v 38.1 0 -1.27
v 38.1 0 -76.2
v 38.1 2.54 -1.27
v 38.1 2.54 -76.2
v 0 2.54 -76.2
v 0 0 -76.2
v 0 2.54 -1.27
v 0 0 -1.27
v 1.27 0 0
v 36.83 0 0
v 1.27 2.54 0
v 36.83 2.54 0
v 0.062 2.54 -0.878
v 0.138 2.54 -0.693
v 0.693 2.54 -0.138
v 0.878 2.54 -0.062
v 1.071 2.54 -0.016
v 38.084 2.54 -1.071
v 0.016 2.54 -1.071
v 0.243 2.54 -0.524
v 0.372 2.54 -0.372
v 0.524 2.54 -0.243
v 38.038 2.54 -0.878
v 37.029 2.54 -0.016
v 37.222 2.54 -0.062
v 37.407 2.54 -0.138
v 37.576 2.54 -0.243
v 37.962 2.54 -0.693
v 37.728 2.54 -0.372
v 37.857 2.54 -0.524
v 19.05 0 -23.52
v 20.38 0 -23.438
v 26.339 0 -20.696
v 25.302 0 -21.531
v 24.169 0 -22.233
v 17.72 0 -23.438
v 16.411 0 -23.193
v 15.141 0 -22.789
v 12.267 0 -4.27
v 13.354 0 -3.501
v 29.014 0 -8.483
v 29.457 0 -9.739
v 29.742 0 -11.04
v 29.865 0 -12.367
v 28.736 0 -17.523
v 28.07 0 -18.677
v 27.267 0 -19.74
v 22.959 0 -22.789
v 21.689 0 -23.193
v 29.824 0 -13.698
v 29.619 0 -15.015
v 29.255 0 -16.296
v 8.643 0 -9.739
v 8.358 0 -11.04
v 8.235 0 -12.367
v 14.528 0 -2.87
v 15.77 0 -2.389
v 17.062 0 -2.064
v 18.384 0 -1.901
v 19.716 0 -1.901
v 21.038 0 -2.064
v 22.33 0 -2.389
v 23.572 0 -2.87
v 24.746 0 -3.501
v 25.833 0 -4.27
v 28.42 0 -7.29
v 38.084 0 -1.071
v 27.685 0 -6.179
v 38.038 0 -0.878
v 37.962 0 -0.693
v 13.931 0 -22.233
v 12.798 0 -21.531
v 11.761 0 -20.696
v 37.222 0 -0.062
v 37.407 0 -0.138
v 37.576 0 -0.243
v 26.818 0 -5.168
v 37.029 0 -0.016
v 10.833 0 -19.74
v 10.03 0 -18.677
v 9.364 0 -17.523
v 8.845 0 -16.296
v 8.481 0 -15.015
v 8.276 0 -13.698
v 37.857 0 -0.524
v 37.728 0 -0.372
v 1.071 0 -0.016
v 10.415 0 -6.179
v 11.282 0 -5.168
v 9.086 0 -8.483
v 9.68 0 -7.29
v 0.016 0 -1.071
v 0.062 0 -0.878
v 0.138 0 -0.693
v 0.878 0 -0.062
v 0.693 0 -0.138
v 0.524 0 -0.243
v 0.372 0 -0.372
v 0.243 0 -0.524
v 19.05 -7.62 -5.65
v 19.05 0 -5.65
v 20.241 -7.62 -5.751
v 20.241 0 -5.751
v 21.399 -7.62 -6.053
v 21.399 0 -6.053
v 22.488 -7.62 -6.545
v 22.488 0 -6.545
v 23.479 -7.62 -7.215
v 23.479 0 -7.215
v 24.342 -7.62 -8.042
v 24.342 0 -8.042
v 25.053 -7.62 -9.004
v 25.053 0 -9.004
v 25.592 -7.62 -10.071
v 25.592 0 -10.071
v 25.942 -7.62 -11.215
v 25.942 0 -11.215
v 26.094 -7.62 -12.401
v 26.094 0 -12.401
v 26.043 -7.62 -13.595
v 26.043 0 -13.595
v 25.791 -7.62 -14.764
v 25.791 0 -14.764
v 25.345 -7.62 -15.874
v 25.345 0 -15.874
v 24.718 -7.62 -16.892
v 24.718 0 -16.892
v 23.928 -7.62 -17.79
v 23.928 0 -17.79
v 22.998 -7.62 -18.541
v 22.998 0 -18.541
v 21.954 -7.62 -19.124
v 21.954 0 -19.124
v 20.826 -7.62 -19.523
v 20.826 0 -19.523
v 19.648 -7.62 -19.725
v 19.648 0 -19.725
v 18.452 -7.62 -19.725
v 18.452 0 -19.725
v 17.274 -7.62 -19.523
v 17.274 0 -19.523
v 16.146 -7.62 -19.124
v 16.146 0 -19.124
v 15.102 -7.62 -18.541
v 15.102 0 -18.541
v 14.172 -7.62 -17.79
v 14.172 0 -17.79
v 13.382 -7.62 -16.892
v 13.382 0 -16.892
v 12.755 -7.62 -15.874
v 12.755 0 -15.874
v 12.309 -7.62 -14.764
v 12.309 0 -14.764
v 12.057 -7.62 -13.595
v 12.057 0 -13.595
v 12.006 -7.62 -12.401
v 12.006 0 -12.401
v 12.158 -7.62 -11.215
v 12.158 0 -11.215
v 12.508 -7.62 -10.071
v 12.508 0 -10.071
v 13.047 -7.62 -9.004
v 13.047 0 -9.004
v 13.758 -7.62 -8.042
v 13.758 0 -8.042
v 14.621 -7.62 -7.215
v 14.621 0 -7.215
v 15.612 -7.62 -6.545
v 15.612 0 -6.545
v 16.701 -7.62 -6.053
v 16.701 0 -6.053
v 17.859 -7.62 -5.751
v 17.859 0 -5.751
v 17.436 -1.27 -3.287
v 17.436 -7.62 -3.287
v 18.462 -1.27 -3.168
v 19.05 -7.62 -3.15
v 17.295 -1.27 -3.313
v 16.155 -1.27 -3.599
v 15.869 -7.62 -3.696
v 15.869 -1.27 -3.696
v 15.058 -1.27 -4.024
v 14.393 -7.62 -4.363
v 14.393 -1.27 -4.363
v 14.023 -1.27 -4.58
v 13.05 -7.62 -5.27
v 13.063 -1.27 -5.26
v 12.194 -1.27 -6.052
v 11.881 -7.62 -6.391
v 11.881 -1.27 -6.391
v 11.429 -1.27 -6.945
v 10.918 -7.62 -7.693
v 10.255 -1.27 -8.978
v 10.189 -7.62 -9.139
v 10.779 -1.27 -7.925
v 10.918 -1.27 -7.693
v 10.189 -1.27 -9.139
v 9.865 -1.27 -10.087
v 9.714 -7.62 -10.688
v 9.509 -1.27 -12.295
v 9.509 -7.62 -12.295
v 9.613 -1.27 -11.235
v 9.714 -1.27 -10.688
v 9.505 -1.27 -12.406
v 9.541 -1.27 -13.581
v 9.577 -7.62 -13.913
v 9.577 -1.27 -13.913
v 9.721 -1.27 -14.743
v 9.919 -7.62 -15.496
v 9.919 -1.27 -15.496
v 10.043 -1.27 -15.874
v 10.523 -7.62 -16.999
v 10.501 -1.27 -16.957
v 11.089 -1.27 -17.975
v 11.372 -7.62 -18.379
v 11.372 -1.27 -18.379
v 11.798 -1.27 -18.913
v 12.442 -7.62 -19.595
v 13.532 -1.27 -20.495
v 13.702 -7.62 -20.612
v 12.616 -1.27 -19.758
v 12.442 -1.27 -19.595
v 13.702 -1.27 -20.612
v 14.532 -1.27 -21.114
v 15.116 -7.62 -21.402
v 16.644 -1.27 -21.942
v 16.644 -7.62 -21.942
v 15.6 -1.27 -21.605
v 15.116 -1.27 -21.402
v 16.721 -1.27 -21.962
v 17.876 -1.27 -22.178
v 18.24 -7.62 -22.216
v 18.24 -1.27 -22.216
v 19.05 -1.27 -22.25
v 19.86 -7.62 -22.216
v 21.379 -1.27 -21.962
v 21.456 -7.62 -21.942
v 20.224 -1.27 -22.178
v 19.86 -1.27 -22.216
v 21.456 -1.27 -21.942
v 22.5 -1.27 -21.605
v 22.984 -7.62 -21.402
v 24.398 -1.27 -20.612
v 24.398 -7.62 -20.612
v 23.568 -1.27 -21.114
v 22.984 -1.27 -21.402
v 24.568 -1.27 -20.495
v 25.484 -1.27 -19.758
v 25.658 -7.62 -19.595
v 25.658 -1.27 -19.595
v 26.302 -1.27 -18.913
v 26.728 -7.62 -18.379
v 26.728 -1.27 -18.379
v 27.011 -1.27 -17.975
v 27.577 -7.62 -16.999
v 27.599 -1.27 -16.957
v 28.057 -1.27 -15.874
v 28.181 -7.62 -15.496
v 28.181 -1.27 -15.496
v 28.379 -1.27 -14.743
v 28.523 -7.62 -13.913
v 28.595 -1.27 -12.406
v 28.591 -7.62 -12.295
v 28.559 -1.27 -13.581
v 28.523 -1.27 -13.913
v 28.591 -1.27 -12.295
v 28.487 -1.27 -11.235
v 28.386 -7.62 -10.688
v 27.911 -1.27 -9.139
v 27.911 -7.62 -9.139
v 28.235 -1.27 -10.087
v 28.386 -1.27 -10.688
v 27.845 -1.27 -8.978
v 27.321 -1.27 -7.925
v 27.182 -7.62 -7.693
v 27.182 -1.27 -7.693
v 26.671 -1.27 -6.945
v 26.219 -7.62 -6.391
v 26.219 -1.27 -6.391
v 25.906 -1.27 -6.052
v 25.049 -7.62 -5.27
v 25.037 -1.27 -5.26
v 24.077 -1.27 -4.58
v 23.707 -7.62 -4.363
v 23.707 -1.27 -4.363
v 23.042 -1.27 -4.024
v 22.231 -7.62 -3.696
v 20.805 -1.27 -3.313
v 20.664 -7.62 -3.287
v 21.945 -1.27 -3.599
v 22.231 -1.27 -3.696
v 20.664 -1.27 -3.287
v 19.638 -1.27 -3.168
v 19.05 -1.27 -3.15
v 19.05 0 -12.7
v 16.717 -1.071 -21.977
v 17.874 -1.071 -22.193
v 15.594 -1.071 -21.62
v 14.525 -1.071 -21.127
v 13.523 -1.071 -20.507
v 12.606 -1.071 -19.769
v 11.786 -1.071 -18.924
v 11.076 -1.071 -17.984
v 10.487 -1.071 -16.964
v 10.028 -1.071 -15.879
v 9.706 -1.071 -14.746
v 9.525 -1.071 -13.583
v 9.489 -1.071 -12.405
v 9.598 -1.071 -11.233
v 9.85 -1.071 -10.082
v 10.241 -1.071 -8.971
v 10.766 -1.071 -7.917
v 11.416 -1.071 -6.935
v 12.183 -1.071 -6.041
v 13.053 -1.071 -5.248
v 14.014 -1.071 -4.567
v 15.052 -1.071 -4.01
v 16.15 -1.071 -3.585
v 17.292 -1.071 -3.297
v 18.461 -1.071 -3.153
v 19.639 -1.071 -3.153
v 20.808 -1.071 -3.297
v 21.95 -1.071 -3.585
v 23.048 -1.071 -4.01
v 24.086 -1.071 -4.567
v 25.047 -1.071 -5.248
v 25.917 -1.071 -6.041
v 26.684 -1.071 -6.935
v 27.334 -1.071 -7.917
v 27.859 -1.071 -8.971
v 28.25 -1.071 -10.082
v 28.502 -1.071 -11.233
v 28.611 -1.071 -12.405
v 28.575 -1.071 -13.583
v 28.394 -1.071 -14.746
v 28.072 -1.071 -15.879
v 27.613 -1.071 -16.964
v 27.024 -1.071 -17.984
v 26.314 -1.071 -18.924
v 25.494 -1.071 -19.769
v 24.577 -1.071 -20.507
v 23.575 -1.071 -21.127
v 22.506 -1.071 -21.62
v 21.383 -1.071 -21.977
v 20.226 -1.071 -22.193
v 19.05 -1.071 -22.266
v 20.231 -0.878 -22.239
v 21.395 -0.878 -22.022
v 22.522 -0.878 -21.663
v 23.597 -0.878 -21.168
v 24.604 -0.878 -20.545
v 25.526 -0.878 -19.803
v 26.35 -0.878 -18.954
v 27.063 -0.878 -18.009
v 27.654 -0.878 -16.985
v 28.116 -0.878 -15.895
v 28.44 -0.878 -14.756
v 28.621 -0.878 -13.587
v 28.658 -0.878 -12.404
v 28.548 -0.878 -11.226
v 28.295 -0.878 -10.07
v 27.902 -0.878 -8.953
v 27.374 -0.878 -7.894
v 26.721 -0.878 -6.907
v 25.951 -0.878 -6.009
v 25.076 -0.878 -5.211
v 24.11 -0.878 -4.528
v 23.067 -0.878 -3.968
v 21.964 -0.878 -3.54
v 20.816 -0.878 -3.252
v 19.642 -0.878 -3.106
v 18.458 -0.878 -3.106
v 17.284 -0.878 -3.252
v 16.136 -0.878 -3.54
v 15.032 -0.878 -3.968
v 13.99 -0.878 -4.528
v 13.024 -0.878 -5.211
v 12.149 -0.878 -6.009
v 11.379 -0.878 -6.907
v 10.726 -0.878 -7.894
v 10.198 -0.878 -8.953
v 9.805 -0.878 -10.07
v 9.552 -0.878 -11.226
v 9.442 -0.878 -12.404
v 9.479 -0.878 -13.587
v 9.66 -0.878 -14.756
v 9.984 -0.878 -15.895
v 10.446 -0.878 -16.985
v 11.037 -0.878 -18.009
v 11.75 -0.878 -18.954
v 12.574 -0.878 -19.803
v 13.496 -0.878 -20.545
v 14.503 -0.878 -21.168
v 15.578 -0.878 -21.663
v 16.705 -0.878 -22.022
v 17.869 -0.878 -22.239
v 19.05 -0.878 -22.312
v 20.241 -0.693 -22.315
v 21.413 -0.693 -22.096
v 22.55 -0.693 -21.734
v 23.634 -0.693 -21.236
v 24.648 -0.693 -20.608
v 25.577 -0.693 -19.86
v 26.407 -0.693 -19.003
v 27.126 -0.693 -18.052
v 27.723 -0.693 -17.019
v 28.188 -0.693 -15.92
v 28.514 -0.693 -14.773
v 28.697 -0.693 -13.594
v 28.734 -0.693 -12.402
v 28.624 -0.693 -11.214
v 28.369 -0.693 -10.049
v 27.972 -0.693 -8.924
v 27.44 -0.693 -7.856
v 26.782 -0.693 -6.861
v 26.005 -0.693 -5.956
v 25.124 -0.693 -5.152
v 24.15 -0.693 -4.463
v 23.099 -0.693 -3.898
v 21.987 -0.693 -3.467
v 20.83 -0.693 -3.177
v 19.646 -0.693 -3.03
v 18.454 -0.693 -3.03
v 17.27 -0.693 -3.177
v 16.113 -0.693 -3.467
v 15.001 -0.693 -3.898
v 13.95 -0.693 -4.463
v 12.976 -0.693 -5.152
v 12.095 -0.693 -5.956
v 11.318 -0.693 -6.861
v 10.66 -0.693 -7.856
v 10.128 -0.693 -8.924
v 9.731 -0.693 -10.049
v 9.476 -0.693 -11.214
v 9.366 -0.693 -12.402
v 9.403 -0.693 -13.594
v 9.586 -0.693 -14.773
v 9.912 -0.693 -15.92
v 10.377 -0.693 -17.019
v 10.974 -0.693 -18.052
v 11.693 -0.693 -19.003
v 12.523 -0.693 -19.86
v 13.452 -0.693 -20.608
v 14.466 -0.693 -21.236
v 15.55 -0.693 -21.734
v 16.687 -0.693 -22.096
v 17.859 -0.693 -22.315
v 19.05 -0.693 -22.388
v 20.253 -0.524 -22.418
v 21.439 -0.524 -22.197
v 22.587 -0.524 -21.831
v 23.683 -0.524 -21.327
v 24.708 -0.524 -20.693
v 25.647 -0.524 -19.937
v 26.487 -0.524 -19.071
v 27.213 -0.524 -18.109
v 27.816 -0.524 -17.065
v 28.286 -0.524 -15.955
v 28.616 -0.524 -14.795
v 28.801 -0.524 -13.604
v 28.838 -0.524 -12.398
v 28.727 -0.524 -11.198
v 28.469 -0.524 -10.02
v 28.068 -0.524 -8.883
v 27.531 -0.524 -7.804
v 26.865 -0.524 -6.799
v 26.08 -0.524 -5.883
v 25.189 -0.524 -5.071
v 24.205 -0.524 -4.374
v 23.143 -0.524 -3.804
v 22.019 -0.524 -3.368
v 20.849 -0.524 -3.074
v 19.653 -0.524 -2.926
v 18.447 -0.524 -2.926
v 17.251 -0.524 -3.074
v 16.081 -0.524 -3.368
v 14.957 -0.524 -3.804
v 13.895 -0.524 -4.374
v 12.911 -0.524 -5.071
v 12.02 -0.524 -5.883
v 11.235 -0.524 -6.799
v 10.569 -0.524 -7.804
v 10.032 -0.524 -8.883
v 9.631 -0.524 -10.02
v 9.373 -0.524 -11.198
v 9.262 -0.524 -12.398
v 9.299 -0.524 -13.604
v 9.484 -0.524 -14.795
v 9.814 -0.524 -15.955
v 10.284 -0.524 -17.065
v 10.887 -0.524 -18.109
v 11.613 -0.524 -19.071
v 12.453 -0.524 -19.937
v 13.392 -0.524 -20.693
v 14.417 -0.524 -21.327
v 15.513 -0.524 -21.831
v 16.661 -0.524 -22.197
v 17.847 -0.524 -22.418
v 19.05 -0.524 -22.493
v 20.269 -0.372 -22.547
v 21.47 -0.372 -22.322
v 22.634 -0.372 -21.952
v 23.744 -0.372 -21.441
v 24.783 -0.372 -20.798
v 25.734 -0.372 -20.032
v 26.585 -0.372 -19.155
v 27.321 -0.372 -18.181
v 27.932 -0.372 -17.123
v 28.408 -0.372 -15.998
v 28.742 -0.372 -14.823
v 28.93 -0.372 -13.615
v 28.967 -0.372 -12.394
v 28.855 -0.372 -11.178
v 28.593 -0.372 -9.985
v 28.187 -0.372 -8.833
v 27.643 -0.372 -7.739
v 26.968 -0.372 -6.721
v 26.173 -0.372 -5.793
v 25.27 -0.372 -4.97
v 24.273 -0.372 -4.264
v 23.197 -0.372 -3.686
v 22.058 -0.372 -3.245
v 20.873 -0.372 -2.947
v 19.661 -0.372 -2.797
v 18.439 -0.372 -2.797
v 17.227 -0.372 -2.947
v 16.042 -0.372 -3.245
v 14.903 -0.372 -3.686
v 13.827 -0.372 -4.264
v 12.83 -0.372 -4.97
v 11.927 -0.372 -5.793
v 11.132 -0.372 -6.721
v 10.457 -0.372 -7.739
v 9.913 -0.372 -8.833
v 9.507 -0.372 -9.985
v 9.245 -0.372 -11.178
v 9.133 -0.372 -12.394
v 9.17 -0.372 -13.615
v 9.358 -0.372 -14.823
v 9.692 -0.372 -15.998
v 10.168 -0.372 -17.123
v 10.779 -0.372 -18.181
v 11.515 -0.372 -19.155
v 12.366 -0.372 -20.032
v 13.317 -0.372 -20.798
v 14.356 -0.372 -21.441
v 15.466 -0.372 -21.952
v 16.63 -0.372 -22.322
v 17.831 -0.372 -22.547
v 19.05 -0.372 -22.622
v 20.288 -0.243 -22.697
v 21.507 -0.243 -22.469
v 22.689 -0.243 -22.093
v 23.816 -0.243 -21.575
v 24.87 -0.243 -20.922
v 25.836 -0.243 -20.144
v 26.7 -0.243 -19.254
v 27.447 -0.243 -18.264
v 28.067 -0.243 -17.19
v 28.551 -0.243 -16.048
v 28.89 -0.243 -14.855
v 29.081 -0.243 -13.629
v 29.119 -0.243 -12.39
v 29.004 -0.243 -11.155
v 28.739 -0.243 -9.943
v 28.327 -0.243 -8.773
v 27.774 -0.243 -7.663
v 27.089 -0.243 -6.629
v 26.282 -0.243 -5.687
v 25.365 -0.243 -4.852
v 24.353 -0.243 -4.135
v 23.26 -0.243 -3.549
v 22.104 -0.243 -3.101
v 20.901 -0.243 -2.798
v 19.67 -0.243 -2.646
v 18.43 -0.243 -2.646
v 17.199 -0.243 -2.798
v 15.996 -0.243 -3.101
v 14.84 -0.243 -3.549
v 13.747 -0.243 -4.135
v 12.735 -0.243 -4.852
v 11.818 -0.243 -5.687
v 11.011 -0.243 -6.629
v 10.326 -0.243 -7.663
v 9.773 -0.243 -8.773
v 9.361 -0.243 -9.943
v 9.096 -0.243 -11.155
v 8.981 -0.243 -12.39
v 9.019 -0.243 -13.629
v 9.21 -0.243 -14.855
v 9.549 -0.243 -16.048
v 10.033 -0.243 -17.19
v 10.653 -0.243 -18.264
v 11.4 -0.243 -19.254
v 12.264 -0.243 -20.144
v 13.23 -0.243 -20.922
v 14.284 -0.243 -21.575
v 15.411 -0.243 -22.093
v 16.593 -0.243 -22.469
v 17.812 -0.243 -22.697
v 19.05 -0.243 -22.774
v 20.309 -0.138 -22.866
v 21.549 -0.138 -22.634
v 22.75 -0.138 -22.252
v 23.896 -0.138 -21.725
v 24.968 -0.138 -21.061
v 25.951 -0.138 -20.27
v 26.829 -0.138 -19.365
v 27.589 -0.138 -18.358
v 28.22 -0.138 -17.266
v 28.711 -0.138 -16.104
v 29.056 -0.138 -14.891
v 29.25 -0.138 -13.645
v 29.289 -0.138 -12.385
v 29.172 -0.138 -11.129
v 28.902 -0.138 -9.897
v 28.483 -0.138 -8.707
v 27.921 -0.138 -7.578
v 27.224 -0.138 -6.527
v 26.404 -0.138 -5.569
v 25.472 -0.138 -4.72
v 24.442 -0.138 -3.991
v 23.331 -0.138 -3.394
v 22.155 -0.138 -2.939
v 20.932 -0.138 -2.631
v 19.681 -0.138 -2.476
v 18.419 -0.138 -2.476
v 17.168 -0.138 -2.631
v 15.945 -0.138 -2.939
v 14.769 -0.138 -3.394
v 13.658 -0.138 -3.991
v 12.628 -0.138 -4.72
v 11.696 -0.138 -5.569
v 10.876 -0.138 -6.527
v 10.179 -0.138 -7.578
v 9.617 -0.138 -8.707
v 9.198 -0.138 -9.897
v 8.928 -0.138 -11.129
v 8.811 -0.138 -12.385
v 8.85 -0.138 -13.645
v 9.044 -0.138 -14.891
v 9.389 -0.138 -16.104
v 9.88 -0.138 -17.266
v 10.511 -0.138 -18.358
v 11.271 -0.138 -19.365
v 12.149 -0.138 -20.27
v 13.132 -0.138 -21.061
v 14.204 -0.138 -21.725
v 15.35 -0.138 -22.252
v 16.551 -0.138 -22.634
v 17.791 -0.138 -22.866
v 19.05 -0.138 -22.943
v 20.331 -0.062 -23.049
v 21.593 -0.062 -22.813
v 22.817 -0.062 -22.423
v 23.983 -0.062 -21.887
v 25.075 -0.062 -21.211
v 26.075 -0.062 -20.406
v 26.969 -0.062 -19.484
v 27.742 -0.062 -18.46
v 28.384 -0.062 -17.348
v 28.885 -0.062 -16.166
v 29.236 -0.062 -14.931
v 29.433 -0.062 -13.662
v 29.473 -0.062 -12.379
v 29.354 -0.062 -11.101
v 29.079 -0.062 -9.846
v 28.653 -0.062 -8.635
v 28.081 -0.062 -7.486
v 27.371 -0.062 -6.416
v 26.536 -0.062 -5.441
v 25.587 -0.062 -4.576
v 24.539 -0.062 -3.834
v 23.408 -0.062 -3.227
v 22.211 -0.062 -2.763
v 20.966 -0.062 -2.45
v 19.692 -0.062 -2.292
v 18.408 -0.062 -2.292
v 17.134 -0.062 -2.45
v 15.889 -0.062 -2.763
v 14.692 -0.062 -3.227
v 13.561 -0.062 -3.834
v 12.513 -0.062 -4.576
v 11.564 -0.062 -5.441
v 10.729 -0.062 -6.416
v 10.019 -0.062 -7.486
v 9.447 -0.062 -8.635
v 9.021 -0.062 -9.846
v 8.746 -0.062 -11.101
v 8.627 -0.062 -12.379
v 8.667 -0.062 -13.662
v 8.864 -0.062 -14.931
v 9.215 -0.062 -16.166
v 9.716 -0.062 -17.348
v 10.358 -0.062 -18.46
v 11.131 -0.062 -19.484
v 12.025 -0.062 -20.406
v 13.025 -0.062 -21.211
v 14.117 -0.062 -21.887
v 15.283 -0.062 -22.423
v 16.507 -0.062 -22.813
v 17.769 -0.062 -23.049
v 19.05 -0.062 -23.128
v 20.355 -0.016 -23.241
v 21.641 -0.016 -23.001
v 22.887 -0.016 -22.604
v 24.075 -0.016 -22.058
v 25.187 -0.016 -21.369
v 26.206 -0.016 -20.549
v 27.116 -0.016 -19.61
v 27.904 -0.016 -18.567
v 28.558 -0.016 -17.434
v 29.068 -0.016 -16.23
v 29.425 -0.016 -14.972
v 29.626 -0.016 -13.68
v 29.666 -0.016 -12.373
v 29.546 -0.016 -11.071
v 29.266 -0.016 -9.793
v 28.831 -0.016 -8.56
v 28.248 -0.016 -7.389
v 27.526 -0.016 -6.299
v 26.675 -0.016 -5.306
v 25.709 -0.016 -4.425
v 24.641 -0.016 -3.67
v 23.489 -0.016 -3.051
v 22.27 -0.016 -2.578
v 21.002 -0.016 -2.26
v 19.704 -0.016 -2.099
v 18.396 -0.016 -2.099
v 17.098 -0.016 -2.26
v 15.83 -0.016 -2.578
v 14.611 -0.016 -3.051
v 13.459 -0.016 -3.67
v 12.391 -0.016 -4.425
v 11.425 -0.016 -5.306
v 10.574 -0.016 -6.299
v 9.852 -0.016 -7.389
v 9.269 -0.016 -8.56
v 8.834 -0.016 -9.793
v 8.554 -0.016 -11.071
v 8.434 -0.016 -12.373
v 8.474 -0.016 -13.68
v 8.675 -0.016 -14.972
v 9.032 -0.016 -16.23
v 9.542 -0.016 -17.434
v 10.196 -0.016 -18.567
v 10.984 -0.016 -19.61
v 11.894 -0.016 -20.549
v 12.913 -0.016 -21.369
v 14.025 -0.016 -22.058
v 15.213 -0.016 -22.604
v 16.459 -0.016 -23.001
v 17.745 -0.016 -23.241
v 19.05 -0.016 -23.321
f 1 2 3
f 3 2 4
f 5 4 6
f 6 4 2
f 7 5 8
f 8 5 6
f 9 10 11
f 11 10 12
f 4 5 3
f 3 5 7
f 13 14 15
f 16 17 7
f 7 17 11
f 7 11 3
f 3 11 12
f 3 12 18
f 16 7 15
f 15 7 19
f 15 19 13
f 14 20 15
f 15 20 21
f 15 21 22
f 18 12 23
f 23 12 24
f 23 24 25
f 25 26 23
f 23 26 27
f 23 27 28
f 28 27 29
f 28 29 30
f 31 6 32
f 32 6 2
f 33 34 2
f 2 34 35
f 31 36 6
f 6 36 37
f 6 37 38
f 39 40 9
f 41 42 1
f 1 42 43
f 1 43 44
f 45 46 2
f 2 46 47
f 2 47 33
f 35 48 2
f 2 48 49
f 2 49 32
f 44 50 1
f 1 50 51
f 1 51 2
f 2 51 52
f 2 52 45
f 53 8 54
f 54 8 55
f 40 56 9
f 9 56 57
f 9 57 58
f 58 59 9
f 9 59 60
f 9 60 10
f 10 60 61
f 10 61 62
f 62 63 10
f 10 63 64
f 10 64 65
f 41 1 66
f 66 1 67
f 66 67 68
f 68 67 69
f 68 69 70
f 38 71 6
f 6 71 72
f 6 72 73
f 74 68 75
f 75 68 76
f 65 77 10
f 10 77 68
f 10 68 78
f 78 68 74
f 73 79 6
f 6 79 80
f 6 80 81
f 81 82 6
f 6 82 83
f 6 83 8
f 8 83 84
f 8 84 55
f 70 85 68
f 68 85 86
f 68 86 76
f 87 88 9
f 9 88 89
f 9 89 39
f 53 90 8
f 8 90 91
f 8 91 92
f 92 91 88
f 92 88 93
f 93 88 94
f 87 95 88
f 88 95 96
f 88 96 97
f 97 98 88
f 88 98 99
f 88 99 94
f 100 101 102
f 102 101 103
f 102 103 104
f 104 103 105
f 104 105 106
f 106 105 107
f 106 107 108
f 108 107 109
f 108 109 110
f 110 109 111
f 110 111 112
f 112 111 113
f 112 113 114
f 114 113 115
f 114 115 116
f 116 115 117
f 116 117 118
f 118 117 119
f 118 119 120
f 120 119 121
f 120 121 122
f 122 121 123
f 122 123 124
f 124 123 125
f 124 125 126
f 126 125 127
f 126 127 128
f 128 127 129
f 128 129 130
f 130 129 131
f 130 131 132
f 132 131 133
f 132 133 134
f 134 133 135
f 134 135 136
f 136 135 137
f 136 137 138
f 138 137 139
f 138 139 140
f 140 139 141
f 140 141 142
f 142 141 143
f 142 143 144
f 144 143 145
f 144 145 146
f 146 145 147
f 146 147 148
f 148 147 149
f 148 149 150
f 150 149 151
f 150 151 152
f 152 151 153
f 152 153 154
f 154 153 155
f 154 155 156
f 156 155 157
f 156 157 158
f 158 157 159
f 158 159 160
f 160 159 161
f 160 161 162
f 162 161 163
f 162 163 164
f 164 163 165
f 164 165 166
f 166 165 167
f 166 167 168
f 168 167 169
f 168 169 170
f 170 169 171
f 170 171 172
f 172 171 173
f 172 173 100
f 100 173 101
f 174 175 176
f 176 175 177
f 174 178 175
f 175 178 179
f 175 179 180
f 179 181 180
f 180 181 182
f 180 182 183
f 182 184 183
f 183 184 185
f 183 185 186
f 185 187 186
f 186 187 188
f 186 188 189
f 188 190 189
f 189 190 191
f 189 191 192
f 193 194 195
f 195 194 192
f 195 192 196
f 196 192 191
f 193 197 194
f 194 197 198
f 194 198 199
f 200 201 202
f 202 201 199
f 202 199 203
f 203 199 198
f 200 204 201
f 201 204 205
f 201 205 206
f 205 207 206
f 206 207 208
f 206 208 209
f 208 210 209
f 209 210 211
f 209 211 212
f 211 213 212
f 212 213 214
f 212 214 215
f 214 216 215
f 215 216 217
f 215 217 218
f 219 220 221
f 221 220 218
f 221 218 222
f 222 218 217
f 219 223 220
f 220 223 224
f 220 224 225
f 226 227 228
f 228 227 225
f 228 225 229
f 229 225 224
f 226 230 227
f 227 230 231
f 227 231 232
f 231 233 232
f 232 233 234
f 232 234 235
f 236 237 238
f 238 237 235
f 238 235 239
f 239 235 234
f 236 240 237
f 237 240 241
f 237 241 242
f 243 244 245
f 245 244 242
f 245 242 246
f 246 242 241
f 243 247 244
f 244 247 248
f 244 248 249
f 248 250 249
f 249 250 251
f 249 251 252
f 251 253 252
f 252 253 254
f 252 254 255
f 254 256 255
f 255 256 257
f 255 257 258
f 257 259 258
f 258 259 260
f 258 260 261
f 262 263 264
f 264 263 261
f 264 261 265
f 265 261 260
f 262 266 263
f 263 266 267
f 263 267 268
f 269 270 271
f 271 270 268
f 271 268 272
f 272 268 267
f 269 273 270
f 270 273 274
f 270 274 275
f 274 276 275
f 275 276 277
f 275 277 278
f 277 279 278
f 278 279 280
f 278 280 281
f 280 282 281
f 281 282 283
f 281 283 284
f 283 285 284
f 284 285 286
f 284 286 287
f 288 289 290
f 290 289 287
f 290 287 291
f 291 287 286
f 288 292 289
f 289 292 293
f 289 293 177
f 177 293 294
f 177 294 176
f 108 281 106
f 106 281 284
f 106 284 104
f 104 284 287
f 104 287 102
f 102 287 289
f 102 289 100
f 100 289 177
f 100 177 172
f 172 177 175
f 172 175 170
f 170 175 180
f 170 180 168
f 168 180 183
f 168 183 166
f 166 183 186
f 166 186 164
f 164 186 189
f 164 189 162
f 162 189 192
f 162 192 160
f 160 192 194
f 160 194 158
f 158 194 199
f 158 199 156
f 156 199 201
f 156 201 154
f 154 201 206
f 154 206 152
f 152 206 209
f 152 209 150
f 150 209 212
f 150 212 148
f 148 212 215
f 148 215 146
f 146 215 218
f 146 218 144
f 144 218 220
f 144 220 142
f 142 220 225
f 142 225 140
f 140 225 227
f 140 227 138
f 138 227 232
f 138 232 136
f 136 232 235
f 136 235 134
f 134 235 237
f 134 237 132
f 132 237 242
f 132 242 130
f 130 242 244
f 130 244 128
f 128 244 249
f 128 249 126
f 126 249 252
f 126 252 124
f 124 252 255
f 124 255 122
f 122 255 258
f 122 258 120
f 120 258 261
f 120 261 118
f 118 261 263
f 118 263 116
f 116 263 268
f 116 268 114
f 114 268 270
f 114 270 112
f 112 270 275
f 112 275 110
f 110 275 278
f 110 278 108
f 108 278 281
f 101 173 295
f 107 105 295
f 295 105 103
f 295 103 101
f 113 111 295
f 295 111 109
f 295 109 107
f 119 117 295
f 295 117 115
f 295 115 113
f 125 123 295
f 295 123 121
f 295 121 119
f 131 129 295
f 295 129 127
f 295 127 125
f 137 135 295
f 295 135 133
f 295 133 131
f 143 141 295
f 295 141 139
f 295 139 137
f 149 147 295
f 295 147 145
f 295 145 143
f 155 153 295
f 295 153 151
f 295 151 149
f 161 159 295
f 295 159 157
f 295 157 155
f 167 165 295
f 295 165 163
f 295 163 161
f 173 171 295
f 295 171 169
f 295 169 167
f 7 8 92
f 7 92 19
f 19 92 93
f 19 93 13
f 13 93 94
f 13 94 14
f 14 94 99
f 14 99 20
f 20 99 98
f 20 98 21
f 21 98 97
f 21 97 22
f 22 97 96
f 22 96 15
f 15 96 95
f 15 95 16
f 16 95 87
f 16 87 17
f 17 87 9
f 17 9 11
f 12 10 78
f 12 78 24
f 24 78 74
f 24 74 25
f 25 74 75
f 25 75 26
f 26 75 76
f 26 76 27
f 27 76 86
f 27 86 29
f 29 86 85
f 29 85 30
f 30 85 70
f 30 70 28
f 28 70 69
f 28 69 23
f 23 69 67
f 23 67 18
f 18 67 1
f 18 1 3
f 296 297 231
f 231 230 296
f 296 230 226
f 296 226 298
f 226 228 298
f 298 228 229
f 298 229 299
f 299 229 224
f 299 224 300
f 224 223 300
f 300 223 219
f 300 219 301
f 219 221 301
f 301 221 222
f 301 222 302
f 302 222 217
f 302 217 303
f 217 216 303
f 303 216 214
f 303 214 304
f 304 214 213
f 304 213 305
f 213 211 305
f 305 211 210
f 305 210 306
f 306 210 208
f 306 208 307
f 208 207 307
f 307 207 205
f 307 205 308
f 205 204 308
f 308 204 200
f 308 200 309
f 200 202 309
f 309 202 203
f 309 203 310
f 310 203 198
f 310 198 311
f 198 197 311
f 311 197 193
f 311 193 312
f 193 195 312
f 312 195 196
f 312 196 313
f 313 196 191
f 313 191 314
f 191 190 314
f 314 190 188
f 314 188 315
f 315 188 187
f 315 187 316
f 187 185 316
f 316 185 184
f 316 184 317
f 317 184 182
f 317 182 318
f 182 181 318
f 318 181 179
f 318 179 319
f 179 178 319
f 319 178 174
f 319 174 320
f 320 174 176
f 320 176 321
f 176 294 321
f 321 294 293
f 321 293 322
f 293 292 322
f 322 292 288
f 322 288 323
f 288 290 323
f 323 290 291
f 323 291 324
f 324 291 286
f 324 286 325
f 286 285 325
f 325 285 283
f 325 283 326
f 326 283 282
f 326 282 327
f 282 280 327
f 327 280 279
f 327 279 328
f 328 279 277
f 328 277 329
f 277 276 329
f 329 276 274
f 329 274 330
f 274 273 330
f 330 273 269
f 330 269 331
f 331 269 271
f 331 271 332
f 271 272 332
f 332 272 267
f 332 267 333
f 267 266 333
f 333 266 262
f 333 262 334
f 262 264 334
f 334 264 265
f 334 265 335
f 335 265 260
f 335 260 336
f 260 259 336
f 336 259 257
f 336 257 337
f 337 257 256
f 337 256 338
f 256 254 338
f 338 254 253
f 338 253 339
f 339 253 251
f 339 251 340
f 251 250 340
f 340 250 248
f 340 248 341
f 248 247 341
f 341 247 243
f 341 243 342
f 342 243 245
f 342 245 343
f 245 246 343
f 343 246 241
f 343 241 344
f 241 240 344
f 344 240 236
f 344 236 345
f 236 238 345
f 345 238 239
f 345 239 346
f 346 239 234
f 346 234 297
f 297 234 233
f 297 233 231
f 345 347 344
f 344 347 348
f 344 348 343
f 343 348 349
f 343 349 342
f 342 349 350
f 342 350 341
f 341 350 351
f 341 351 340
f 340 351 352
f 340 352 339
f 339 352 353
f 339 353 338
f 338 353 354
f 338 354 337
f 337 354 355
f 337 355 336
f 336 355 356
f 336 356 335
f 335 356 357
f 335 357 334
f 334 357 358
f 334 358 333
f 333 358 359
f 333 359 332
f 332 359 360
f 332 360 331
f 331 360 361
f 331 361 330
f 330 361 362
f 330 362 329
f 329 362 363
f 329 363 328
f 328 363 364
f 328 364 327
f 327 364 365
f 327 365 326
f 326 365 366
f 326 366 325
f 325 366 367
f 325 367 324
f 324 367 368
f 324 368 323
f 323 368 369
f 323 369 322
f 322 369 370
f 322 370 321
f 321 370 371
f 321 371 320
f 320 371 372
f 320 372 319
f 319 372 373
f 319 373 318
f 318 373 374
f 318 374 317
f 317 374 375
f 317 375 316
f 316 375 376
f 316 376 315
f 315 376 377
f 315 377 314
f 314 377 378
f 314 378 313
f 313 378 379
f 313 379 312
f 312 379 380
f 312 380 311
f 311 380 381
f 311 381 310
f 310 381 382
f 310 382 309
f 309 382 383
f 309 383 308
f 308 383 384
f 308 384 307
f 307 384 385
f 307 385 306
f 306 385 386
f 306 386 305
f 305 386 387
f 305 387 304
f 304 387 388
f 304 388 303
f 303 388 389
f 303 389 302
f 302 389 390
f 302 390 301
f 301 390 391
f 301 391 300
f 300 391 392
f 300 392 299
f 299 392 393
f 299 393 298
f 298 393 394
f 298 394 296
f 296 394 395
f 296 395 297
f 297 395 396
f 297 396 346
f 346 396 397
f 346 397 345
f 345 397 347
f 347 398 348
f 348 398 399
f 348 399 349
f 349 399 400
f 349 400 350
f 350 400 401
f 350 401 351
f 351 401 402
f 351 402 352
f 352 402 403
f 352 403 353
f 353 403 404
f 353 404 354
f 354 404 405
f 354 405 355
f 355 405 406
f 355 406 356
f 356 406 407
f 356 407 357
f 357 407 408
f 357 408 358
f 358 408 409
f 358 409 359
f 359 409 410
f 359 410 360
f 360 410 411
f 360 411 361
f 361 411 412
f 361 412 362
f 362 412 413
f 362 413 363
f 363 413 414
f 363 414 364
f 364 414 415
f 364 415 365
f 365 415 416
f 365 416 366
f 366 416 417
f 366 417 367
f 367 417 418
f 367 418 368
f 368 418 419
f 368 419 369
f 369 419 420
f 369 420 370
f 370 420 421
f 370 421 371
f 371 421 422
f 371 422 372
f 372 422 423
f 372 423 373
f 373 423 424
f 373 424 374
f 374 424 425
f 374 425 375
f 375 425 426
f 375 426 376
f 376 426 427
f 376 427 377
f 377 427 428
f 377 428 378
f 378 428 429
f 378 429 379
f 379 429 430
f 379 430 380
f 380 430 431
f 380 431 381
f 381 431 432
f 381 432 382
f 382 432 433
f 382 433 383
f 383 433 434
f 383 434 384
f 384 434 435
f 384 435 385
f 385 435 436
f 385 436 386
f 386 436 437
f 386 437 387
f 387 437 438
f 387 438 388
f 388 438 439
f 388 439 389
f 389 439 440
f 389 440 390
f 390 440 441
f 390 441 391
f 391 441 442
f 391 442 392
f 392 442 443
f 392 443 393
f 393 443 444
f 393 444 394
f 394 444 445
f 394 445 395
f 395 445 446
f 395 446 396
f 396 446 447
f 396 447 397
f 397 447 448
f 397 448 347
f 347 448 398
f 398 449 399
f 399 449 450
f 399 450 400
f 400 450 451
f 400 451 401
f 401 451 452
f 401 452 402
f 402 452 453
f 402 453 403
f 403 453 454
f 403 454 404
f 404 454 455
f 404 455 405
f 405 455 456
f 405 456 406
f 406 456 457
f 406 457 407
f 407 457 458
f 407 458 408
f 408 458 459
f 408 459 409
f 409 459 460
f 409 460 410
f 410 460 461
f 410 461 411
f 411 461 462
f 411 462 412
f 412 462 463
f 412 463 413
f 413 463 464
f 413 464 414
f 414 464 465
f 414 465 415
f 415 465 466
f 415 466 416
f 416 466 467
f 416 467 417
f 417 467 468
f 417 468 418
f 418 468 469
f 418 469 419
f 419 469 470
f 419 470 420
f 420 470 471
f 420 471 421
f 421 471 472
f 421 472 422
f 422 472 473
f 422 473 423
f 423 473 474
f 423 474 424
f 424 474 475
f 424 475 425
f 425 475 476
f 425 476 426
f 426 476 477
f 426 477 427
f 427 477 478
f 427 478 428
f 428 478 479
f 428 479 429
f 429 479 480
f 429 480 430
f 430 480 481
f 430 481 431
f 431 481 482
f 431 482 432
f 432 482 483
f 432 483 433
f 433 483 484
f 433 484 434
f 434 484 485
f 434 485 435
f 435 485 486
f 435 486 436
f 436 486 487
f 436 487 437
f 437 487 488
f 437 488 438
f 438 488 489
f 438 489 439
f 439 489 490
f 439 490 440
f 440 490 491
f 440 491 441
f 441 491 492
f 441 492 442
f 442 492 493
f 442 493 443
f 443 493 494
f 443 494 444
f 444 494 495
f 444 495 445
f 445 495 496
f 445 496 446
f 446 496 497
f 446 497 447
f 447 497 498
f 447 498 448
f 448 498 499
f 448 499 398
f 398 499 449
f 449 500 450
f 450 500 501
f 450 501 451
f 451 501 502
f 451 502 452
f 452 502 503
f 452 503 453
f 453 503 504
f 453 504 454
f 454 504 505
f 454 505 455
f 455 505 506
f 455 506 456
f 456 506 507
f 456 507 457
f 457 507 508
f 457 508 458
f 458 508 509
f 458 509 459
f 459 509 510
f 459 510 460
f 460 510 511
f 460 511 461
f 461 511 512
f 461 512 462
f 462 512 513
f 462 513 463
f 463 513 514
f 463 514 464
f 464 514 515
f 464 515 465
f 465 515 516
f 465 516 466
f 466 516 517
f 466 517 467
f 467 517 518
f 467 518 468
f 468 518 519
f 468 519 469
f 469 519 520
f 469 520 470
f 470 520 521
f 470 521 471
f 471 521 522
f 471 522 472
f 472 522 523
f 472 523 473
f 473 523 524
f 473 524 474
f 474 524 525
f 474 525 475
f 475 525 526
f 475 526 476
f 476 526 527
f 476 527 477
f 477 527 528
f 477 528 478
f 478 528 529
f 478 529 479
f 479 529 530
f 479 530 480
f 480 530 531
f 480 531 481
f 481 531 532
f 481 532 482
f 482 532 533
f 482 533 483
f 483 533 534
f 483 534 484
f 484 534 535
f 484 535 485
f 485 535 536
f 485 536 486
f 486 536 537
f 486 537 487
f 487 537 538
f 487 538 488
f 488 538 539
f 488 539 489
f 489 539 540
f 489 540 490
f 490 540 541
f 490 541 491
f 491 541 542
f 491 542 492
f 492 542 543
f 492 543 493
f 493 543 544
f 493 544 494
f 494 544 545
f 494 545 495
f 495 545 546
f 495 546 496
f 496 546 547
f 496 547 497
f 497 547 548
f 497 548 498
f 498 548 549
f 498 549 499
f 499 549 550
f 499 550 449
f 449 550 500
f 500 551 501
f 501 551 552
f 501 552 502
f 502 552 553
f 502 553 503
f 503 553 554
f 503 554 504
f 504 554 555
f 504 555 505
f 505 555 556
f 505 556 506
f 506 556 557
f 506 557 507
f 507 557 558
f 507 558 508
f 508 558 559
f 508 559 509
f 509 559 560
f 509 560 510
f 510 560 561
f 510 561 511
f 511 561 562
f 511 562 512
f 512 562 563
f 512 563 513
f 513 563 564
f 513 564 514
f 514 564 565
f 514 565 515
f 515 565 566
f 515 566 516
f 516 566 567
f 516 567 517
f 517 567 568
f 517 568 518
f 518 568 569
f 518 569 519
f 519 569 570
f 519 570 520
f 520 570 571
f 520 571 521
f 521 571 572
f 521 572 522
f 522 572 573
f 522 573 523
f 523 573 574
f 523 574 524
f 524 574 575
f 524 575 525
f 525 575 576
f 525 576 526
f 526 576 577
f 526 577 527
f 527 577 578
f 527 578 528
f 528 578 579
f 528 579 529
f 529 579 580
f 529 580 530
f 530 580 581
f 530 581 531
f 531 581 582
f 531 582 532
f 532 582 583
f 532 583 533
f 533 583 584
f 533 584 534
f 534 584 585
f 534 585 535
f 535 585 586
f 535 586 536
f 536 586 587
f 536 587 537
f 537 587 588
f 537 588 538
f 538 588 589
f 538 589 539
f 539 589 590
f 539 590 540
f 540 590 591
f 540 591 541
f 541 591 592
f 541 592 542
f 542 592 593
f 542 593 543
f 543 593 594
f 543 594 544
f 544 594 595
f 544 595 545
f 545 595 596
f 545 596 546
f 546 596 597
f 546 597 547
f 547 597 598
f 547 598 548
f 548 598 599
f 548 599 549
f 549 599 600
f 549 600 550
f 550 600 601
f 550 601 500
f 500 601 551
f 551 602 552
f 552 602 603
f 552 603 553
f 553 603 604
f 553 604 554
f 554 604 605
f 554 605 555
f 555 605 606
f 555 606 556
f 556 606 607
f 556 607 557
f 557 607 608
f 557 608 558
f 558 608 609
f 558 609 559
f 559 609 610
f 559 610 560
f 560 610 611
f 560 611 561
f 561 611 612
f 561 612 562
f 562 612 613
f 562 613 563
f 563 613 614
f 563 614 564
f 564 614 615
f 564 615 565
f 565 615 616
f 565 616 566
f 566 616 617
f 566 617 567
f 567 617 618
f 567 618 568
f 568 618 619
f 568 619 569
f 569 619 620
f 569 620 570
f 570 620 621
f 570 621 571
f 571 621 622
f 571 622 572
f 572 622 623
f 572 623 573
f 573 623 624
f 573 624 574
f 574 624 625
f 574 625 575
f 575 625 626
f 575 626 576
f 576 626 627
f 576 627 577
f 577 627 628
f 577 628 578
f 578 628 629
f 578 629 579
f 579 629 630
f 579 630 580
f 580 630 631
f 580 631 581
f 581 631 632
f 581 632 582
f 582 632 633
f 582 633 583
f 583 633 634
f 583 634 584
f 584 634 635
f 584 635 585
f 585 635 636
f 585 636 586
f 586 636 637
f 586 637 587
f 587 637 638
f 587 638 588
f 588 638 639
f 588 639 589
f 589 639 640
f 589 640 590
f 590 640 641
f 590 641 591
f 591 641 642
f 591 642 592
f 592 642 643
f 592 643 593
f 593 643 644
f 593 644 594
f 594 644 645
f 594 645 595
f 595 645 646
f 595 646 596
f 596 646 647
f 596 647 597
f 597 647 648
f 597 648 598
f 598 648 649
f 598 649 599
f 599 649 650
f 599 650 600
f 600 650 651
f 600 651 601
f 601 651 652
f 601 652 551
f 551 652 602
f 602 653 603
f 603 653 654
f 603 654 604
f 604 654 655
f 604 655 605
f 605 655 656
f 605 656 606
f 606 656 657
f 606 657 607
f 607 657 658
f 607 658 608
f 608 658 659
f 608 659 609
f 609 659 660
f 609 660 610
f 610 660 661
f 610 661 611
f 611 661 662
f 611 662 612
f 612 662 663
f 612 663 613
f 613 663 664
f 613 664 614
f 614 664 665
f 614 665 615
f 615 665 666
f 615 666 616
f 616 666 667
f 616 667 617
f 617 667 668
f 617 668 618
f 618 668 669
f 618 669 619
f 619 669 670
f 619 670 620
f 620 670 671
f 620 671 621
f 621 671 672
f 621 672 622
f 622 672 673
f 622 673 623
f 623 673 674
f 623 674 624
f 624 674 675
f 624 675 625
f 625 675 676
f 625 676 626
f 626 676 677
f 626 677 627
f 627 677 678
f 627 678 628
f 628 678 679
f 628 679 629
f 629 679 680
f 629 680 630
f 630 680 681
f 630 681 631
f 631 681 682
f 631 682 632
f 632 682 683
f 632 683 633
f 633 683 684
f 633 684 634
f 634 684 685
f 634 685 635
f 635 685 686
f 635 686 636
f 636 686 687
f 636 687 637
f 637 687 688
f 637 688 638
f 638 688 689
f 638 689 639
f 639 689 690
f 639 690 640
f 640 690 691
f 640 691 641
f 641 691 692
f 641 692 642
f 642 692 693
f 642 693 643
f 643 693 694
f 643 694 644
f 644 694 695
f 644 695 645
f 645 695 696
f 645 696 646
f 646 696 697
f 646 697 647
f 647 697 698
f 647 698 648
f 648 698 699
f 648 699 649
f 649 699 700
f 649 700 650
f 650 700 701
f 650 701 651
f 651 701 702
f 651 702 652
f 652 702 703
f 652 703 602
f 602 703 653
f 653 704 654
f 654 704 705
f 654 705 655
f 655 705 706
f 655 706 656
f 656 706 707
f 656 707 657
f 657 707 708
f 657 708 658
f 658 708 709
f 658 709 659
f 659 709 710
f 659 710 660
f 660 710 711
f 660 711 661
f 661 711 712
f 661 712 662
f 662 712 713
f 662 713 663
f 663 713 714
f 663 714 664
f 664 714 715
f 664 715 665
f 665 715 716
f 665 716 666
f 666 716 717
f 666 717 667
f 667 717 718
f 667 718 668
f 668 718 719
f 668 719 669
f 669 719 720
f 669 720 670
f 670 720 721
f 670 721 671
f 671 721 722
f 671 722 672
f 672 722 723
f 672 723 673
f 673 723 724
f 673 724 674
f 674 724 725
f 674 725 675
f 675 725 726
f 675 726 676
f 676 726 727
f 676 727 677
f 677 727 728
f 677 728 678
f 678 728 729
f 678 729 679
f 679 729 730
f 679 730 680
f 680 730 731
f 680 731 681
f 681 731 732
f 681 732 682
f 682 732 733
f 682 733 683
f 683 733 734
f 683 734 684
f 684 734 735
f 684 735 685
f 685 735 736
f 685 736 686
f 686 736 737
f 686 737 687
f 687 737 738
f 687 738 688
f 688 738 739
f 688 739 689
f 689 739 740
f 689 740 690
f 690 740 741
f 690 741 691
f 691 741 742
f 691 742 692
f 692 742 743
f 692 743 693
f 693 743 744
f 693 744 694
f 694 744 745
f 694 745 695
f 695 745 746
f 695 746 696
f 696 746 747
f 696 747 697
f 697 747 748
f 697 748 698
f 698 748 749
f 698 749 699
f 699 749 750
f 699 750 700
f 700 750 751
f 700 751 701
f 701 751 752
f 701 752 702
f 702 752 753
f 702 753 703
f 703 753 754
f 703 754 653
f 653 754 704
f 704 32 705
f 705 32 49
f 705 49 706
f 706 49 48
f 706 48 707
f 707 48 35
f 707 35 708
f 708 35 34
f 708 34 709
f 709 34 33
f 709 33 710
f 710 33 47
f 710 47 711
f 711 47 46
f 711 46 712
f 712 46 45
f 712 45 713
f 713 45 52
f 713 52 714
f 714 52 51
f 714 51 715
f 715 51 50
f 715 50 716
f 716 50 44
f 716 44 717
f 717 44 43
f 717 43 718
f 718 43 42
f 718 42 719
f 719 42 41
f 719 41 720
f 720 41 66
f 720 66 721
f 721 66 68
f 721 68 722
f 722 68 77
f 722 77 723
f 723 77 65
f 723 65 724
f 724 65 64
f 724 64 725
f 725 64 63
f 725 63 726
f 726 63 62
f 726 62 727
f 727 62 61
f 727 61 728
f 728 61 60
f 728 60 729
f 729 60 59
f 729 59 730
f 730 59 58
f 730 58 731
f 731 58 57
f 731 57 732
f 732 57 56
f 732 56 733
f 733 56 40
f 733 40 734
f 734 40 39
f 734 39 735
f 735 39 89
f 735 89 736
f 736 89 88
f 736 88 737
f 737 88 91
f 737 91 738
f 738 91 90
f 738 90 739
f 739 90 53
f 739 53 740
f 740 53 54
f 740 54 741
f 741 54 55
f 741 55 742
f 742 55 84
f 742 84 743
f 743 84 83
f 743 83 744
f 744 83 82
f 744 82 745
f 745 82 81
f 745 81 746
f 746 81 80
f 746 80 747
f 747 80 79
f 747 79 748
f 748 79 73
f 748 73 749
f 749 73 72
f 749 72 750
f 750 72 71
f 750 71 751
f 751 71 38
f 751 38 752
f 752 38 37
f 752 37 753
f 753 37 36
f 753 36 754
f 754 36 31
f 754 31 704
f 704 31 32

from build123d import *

# Parameters (mm, degrees)
SKETCH1_W           = 38.1
SKETCH1_H           = 76.2
BOSS_EXTRUDE1_DEPTH = 2.54
SKETCH1_3_R         = 9.549995
SKETCH1_3_R_2       = 7.05
BOSS_EXTRUDE2_DEPTH = 7.62
FILLET1_R           = 1.27


with BuildPart() as part:
    # Sketch1 → Boss-Extrude1 (new body)
    with BuildSketch(Plane(origin=(0, 0, 0), x_dir=(1, 0, 0), z_dir=(0, 1, 0))):
        with Locations((19.05, 38.1)):
            Rectangle(SKETCH1_W, SKETCH1_H)
    extrude(amount=BOSS_EXTRUDE1_DEPTH)

    # Sketch1<3> → Boss-Extrude2 (add)
    with BuildSketch(Plane(origin=(0, 0, 0), x_dir=(1, 0, 0), z_dir=(0, 1, 0))):
        with Locations((19.05, 12.7)):
            Circle(SKETCH1_3_R)
        with Locations((19.05, 12.7)):
            Circle(SKETCH1_3_R_2, mode=Mode.SUBTRACT)
    extrude(amount=-BOSS_EXTRUDE2_DEPTH)

    # Fillet1
    fillet1_edges = [part.edges().sort_by_distance(p)[0] for p in [
        (0, 1.27, 0),
        (38.1, 1.27, 0),
        (9.500005, 0, -12.7),
    ]]
    fillet(fillet1_edges, radius=FILLET1_R)


solid = part.part
